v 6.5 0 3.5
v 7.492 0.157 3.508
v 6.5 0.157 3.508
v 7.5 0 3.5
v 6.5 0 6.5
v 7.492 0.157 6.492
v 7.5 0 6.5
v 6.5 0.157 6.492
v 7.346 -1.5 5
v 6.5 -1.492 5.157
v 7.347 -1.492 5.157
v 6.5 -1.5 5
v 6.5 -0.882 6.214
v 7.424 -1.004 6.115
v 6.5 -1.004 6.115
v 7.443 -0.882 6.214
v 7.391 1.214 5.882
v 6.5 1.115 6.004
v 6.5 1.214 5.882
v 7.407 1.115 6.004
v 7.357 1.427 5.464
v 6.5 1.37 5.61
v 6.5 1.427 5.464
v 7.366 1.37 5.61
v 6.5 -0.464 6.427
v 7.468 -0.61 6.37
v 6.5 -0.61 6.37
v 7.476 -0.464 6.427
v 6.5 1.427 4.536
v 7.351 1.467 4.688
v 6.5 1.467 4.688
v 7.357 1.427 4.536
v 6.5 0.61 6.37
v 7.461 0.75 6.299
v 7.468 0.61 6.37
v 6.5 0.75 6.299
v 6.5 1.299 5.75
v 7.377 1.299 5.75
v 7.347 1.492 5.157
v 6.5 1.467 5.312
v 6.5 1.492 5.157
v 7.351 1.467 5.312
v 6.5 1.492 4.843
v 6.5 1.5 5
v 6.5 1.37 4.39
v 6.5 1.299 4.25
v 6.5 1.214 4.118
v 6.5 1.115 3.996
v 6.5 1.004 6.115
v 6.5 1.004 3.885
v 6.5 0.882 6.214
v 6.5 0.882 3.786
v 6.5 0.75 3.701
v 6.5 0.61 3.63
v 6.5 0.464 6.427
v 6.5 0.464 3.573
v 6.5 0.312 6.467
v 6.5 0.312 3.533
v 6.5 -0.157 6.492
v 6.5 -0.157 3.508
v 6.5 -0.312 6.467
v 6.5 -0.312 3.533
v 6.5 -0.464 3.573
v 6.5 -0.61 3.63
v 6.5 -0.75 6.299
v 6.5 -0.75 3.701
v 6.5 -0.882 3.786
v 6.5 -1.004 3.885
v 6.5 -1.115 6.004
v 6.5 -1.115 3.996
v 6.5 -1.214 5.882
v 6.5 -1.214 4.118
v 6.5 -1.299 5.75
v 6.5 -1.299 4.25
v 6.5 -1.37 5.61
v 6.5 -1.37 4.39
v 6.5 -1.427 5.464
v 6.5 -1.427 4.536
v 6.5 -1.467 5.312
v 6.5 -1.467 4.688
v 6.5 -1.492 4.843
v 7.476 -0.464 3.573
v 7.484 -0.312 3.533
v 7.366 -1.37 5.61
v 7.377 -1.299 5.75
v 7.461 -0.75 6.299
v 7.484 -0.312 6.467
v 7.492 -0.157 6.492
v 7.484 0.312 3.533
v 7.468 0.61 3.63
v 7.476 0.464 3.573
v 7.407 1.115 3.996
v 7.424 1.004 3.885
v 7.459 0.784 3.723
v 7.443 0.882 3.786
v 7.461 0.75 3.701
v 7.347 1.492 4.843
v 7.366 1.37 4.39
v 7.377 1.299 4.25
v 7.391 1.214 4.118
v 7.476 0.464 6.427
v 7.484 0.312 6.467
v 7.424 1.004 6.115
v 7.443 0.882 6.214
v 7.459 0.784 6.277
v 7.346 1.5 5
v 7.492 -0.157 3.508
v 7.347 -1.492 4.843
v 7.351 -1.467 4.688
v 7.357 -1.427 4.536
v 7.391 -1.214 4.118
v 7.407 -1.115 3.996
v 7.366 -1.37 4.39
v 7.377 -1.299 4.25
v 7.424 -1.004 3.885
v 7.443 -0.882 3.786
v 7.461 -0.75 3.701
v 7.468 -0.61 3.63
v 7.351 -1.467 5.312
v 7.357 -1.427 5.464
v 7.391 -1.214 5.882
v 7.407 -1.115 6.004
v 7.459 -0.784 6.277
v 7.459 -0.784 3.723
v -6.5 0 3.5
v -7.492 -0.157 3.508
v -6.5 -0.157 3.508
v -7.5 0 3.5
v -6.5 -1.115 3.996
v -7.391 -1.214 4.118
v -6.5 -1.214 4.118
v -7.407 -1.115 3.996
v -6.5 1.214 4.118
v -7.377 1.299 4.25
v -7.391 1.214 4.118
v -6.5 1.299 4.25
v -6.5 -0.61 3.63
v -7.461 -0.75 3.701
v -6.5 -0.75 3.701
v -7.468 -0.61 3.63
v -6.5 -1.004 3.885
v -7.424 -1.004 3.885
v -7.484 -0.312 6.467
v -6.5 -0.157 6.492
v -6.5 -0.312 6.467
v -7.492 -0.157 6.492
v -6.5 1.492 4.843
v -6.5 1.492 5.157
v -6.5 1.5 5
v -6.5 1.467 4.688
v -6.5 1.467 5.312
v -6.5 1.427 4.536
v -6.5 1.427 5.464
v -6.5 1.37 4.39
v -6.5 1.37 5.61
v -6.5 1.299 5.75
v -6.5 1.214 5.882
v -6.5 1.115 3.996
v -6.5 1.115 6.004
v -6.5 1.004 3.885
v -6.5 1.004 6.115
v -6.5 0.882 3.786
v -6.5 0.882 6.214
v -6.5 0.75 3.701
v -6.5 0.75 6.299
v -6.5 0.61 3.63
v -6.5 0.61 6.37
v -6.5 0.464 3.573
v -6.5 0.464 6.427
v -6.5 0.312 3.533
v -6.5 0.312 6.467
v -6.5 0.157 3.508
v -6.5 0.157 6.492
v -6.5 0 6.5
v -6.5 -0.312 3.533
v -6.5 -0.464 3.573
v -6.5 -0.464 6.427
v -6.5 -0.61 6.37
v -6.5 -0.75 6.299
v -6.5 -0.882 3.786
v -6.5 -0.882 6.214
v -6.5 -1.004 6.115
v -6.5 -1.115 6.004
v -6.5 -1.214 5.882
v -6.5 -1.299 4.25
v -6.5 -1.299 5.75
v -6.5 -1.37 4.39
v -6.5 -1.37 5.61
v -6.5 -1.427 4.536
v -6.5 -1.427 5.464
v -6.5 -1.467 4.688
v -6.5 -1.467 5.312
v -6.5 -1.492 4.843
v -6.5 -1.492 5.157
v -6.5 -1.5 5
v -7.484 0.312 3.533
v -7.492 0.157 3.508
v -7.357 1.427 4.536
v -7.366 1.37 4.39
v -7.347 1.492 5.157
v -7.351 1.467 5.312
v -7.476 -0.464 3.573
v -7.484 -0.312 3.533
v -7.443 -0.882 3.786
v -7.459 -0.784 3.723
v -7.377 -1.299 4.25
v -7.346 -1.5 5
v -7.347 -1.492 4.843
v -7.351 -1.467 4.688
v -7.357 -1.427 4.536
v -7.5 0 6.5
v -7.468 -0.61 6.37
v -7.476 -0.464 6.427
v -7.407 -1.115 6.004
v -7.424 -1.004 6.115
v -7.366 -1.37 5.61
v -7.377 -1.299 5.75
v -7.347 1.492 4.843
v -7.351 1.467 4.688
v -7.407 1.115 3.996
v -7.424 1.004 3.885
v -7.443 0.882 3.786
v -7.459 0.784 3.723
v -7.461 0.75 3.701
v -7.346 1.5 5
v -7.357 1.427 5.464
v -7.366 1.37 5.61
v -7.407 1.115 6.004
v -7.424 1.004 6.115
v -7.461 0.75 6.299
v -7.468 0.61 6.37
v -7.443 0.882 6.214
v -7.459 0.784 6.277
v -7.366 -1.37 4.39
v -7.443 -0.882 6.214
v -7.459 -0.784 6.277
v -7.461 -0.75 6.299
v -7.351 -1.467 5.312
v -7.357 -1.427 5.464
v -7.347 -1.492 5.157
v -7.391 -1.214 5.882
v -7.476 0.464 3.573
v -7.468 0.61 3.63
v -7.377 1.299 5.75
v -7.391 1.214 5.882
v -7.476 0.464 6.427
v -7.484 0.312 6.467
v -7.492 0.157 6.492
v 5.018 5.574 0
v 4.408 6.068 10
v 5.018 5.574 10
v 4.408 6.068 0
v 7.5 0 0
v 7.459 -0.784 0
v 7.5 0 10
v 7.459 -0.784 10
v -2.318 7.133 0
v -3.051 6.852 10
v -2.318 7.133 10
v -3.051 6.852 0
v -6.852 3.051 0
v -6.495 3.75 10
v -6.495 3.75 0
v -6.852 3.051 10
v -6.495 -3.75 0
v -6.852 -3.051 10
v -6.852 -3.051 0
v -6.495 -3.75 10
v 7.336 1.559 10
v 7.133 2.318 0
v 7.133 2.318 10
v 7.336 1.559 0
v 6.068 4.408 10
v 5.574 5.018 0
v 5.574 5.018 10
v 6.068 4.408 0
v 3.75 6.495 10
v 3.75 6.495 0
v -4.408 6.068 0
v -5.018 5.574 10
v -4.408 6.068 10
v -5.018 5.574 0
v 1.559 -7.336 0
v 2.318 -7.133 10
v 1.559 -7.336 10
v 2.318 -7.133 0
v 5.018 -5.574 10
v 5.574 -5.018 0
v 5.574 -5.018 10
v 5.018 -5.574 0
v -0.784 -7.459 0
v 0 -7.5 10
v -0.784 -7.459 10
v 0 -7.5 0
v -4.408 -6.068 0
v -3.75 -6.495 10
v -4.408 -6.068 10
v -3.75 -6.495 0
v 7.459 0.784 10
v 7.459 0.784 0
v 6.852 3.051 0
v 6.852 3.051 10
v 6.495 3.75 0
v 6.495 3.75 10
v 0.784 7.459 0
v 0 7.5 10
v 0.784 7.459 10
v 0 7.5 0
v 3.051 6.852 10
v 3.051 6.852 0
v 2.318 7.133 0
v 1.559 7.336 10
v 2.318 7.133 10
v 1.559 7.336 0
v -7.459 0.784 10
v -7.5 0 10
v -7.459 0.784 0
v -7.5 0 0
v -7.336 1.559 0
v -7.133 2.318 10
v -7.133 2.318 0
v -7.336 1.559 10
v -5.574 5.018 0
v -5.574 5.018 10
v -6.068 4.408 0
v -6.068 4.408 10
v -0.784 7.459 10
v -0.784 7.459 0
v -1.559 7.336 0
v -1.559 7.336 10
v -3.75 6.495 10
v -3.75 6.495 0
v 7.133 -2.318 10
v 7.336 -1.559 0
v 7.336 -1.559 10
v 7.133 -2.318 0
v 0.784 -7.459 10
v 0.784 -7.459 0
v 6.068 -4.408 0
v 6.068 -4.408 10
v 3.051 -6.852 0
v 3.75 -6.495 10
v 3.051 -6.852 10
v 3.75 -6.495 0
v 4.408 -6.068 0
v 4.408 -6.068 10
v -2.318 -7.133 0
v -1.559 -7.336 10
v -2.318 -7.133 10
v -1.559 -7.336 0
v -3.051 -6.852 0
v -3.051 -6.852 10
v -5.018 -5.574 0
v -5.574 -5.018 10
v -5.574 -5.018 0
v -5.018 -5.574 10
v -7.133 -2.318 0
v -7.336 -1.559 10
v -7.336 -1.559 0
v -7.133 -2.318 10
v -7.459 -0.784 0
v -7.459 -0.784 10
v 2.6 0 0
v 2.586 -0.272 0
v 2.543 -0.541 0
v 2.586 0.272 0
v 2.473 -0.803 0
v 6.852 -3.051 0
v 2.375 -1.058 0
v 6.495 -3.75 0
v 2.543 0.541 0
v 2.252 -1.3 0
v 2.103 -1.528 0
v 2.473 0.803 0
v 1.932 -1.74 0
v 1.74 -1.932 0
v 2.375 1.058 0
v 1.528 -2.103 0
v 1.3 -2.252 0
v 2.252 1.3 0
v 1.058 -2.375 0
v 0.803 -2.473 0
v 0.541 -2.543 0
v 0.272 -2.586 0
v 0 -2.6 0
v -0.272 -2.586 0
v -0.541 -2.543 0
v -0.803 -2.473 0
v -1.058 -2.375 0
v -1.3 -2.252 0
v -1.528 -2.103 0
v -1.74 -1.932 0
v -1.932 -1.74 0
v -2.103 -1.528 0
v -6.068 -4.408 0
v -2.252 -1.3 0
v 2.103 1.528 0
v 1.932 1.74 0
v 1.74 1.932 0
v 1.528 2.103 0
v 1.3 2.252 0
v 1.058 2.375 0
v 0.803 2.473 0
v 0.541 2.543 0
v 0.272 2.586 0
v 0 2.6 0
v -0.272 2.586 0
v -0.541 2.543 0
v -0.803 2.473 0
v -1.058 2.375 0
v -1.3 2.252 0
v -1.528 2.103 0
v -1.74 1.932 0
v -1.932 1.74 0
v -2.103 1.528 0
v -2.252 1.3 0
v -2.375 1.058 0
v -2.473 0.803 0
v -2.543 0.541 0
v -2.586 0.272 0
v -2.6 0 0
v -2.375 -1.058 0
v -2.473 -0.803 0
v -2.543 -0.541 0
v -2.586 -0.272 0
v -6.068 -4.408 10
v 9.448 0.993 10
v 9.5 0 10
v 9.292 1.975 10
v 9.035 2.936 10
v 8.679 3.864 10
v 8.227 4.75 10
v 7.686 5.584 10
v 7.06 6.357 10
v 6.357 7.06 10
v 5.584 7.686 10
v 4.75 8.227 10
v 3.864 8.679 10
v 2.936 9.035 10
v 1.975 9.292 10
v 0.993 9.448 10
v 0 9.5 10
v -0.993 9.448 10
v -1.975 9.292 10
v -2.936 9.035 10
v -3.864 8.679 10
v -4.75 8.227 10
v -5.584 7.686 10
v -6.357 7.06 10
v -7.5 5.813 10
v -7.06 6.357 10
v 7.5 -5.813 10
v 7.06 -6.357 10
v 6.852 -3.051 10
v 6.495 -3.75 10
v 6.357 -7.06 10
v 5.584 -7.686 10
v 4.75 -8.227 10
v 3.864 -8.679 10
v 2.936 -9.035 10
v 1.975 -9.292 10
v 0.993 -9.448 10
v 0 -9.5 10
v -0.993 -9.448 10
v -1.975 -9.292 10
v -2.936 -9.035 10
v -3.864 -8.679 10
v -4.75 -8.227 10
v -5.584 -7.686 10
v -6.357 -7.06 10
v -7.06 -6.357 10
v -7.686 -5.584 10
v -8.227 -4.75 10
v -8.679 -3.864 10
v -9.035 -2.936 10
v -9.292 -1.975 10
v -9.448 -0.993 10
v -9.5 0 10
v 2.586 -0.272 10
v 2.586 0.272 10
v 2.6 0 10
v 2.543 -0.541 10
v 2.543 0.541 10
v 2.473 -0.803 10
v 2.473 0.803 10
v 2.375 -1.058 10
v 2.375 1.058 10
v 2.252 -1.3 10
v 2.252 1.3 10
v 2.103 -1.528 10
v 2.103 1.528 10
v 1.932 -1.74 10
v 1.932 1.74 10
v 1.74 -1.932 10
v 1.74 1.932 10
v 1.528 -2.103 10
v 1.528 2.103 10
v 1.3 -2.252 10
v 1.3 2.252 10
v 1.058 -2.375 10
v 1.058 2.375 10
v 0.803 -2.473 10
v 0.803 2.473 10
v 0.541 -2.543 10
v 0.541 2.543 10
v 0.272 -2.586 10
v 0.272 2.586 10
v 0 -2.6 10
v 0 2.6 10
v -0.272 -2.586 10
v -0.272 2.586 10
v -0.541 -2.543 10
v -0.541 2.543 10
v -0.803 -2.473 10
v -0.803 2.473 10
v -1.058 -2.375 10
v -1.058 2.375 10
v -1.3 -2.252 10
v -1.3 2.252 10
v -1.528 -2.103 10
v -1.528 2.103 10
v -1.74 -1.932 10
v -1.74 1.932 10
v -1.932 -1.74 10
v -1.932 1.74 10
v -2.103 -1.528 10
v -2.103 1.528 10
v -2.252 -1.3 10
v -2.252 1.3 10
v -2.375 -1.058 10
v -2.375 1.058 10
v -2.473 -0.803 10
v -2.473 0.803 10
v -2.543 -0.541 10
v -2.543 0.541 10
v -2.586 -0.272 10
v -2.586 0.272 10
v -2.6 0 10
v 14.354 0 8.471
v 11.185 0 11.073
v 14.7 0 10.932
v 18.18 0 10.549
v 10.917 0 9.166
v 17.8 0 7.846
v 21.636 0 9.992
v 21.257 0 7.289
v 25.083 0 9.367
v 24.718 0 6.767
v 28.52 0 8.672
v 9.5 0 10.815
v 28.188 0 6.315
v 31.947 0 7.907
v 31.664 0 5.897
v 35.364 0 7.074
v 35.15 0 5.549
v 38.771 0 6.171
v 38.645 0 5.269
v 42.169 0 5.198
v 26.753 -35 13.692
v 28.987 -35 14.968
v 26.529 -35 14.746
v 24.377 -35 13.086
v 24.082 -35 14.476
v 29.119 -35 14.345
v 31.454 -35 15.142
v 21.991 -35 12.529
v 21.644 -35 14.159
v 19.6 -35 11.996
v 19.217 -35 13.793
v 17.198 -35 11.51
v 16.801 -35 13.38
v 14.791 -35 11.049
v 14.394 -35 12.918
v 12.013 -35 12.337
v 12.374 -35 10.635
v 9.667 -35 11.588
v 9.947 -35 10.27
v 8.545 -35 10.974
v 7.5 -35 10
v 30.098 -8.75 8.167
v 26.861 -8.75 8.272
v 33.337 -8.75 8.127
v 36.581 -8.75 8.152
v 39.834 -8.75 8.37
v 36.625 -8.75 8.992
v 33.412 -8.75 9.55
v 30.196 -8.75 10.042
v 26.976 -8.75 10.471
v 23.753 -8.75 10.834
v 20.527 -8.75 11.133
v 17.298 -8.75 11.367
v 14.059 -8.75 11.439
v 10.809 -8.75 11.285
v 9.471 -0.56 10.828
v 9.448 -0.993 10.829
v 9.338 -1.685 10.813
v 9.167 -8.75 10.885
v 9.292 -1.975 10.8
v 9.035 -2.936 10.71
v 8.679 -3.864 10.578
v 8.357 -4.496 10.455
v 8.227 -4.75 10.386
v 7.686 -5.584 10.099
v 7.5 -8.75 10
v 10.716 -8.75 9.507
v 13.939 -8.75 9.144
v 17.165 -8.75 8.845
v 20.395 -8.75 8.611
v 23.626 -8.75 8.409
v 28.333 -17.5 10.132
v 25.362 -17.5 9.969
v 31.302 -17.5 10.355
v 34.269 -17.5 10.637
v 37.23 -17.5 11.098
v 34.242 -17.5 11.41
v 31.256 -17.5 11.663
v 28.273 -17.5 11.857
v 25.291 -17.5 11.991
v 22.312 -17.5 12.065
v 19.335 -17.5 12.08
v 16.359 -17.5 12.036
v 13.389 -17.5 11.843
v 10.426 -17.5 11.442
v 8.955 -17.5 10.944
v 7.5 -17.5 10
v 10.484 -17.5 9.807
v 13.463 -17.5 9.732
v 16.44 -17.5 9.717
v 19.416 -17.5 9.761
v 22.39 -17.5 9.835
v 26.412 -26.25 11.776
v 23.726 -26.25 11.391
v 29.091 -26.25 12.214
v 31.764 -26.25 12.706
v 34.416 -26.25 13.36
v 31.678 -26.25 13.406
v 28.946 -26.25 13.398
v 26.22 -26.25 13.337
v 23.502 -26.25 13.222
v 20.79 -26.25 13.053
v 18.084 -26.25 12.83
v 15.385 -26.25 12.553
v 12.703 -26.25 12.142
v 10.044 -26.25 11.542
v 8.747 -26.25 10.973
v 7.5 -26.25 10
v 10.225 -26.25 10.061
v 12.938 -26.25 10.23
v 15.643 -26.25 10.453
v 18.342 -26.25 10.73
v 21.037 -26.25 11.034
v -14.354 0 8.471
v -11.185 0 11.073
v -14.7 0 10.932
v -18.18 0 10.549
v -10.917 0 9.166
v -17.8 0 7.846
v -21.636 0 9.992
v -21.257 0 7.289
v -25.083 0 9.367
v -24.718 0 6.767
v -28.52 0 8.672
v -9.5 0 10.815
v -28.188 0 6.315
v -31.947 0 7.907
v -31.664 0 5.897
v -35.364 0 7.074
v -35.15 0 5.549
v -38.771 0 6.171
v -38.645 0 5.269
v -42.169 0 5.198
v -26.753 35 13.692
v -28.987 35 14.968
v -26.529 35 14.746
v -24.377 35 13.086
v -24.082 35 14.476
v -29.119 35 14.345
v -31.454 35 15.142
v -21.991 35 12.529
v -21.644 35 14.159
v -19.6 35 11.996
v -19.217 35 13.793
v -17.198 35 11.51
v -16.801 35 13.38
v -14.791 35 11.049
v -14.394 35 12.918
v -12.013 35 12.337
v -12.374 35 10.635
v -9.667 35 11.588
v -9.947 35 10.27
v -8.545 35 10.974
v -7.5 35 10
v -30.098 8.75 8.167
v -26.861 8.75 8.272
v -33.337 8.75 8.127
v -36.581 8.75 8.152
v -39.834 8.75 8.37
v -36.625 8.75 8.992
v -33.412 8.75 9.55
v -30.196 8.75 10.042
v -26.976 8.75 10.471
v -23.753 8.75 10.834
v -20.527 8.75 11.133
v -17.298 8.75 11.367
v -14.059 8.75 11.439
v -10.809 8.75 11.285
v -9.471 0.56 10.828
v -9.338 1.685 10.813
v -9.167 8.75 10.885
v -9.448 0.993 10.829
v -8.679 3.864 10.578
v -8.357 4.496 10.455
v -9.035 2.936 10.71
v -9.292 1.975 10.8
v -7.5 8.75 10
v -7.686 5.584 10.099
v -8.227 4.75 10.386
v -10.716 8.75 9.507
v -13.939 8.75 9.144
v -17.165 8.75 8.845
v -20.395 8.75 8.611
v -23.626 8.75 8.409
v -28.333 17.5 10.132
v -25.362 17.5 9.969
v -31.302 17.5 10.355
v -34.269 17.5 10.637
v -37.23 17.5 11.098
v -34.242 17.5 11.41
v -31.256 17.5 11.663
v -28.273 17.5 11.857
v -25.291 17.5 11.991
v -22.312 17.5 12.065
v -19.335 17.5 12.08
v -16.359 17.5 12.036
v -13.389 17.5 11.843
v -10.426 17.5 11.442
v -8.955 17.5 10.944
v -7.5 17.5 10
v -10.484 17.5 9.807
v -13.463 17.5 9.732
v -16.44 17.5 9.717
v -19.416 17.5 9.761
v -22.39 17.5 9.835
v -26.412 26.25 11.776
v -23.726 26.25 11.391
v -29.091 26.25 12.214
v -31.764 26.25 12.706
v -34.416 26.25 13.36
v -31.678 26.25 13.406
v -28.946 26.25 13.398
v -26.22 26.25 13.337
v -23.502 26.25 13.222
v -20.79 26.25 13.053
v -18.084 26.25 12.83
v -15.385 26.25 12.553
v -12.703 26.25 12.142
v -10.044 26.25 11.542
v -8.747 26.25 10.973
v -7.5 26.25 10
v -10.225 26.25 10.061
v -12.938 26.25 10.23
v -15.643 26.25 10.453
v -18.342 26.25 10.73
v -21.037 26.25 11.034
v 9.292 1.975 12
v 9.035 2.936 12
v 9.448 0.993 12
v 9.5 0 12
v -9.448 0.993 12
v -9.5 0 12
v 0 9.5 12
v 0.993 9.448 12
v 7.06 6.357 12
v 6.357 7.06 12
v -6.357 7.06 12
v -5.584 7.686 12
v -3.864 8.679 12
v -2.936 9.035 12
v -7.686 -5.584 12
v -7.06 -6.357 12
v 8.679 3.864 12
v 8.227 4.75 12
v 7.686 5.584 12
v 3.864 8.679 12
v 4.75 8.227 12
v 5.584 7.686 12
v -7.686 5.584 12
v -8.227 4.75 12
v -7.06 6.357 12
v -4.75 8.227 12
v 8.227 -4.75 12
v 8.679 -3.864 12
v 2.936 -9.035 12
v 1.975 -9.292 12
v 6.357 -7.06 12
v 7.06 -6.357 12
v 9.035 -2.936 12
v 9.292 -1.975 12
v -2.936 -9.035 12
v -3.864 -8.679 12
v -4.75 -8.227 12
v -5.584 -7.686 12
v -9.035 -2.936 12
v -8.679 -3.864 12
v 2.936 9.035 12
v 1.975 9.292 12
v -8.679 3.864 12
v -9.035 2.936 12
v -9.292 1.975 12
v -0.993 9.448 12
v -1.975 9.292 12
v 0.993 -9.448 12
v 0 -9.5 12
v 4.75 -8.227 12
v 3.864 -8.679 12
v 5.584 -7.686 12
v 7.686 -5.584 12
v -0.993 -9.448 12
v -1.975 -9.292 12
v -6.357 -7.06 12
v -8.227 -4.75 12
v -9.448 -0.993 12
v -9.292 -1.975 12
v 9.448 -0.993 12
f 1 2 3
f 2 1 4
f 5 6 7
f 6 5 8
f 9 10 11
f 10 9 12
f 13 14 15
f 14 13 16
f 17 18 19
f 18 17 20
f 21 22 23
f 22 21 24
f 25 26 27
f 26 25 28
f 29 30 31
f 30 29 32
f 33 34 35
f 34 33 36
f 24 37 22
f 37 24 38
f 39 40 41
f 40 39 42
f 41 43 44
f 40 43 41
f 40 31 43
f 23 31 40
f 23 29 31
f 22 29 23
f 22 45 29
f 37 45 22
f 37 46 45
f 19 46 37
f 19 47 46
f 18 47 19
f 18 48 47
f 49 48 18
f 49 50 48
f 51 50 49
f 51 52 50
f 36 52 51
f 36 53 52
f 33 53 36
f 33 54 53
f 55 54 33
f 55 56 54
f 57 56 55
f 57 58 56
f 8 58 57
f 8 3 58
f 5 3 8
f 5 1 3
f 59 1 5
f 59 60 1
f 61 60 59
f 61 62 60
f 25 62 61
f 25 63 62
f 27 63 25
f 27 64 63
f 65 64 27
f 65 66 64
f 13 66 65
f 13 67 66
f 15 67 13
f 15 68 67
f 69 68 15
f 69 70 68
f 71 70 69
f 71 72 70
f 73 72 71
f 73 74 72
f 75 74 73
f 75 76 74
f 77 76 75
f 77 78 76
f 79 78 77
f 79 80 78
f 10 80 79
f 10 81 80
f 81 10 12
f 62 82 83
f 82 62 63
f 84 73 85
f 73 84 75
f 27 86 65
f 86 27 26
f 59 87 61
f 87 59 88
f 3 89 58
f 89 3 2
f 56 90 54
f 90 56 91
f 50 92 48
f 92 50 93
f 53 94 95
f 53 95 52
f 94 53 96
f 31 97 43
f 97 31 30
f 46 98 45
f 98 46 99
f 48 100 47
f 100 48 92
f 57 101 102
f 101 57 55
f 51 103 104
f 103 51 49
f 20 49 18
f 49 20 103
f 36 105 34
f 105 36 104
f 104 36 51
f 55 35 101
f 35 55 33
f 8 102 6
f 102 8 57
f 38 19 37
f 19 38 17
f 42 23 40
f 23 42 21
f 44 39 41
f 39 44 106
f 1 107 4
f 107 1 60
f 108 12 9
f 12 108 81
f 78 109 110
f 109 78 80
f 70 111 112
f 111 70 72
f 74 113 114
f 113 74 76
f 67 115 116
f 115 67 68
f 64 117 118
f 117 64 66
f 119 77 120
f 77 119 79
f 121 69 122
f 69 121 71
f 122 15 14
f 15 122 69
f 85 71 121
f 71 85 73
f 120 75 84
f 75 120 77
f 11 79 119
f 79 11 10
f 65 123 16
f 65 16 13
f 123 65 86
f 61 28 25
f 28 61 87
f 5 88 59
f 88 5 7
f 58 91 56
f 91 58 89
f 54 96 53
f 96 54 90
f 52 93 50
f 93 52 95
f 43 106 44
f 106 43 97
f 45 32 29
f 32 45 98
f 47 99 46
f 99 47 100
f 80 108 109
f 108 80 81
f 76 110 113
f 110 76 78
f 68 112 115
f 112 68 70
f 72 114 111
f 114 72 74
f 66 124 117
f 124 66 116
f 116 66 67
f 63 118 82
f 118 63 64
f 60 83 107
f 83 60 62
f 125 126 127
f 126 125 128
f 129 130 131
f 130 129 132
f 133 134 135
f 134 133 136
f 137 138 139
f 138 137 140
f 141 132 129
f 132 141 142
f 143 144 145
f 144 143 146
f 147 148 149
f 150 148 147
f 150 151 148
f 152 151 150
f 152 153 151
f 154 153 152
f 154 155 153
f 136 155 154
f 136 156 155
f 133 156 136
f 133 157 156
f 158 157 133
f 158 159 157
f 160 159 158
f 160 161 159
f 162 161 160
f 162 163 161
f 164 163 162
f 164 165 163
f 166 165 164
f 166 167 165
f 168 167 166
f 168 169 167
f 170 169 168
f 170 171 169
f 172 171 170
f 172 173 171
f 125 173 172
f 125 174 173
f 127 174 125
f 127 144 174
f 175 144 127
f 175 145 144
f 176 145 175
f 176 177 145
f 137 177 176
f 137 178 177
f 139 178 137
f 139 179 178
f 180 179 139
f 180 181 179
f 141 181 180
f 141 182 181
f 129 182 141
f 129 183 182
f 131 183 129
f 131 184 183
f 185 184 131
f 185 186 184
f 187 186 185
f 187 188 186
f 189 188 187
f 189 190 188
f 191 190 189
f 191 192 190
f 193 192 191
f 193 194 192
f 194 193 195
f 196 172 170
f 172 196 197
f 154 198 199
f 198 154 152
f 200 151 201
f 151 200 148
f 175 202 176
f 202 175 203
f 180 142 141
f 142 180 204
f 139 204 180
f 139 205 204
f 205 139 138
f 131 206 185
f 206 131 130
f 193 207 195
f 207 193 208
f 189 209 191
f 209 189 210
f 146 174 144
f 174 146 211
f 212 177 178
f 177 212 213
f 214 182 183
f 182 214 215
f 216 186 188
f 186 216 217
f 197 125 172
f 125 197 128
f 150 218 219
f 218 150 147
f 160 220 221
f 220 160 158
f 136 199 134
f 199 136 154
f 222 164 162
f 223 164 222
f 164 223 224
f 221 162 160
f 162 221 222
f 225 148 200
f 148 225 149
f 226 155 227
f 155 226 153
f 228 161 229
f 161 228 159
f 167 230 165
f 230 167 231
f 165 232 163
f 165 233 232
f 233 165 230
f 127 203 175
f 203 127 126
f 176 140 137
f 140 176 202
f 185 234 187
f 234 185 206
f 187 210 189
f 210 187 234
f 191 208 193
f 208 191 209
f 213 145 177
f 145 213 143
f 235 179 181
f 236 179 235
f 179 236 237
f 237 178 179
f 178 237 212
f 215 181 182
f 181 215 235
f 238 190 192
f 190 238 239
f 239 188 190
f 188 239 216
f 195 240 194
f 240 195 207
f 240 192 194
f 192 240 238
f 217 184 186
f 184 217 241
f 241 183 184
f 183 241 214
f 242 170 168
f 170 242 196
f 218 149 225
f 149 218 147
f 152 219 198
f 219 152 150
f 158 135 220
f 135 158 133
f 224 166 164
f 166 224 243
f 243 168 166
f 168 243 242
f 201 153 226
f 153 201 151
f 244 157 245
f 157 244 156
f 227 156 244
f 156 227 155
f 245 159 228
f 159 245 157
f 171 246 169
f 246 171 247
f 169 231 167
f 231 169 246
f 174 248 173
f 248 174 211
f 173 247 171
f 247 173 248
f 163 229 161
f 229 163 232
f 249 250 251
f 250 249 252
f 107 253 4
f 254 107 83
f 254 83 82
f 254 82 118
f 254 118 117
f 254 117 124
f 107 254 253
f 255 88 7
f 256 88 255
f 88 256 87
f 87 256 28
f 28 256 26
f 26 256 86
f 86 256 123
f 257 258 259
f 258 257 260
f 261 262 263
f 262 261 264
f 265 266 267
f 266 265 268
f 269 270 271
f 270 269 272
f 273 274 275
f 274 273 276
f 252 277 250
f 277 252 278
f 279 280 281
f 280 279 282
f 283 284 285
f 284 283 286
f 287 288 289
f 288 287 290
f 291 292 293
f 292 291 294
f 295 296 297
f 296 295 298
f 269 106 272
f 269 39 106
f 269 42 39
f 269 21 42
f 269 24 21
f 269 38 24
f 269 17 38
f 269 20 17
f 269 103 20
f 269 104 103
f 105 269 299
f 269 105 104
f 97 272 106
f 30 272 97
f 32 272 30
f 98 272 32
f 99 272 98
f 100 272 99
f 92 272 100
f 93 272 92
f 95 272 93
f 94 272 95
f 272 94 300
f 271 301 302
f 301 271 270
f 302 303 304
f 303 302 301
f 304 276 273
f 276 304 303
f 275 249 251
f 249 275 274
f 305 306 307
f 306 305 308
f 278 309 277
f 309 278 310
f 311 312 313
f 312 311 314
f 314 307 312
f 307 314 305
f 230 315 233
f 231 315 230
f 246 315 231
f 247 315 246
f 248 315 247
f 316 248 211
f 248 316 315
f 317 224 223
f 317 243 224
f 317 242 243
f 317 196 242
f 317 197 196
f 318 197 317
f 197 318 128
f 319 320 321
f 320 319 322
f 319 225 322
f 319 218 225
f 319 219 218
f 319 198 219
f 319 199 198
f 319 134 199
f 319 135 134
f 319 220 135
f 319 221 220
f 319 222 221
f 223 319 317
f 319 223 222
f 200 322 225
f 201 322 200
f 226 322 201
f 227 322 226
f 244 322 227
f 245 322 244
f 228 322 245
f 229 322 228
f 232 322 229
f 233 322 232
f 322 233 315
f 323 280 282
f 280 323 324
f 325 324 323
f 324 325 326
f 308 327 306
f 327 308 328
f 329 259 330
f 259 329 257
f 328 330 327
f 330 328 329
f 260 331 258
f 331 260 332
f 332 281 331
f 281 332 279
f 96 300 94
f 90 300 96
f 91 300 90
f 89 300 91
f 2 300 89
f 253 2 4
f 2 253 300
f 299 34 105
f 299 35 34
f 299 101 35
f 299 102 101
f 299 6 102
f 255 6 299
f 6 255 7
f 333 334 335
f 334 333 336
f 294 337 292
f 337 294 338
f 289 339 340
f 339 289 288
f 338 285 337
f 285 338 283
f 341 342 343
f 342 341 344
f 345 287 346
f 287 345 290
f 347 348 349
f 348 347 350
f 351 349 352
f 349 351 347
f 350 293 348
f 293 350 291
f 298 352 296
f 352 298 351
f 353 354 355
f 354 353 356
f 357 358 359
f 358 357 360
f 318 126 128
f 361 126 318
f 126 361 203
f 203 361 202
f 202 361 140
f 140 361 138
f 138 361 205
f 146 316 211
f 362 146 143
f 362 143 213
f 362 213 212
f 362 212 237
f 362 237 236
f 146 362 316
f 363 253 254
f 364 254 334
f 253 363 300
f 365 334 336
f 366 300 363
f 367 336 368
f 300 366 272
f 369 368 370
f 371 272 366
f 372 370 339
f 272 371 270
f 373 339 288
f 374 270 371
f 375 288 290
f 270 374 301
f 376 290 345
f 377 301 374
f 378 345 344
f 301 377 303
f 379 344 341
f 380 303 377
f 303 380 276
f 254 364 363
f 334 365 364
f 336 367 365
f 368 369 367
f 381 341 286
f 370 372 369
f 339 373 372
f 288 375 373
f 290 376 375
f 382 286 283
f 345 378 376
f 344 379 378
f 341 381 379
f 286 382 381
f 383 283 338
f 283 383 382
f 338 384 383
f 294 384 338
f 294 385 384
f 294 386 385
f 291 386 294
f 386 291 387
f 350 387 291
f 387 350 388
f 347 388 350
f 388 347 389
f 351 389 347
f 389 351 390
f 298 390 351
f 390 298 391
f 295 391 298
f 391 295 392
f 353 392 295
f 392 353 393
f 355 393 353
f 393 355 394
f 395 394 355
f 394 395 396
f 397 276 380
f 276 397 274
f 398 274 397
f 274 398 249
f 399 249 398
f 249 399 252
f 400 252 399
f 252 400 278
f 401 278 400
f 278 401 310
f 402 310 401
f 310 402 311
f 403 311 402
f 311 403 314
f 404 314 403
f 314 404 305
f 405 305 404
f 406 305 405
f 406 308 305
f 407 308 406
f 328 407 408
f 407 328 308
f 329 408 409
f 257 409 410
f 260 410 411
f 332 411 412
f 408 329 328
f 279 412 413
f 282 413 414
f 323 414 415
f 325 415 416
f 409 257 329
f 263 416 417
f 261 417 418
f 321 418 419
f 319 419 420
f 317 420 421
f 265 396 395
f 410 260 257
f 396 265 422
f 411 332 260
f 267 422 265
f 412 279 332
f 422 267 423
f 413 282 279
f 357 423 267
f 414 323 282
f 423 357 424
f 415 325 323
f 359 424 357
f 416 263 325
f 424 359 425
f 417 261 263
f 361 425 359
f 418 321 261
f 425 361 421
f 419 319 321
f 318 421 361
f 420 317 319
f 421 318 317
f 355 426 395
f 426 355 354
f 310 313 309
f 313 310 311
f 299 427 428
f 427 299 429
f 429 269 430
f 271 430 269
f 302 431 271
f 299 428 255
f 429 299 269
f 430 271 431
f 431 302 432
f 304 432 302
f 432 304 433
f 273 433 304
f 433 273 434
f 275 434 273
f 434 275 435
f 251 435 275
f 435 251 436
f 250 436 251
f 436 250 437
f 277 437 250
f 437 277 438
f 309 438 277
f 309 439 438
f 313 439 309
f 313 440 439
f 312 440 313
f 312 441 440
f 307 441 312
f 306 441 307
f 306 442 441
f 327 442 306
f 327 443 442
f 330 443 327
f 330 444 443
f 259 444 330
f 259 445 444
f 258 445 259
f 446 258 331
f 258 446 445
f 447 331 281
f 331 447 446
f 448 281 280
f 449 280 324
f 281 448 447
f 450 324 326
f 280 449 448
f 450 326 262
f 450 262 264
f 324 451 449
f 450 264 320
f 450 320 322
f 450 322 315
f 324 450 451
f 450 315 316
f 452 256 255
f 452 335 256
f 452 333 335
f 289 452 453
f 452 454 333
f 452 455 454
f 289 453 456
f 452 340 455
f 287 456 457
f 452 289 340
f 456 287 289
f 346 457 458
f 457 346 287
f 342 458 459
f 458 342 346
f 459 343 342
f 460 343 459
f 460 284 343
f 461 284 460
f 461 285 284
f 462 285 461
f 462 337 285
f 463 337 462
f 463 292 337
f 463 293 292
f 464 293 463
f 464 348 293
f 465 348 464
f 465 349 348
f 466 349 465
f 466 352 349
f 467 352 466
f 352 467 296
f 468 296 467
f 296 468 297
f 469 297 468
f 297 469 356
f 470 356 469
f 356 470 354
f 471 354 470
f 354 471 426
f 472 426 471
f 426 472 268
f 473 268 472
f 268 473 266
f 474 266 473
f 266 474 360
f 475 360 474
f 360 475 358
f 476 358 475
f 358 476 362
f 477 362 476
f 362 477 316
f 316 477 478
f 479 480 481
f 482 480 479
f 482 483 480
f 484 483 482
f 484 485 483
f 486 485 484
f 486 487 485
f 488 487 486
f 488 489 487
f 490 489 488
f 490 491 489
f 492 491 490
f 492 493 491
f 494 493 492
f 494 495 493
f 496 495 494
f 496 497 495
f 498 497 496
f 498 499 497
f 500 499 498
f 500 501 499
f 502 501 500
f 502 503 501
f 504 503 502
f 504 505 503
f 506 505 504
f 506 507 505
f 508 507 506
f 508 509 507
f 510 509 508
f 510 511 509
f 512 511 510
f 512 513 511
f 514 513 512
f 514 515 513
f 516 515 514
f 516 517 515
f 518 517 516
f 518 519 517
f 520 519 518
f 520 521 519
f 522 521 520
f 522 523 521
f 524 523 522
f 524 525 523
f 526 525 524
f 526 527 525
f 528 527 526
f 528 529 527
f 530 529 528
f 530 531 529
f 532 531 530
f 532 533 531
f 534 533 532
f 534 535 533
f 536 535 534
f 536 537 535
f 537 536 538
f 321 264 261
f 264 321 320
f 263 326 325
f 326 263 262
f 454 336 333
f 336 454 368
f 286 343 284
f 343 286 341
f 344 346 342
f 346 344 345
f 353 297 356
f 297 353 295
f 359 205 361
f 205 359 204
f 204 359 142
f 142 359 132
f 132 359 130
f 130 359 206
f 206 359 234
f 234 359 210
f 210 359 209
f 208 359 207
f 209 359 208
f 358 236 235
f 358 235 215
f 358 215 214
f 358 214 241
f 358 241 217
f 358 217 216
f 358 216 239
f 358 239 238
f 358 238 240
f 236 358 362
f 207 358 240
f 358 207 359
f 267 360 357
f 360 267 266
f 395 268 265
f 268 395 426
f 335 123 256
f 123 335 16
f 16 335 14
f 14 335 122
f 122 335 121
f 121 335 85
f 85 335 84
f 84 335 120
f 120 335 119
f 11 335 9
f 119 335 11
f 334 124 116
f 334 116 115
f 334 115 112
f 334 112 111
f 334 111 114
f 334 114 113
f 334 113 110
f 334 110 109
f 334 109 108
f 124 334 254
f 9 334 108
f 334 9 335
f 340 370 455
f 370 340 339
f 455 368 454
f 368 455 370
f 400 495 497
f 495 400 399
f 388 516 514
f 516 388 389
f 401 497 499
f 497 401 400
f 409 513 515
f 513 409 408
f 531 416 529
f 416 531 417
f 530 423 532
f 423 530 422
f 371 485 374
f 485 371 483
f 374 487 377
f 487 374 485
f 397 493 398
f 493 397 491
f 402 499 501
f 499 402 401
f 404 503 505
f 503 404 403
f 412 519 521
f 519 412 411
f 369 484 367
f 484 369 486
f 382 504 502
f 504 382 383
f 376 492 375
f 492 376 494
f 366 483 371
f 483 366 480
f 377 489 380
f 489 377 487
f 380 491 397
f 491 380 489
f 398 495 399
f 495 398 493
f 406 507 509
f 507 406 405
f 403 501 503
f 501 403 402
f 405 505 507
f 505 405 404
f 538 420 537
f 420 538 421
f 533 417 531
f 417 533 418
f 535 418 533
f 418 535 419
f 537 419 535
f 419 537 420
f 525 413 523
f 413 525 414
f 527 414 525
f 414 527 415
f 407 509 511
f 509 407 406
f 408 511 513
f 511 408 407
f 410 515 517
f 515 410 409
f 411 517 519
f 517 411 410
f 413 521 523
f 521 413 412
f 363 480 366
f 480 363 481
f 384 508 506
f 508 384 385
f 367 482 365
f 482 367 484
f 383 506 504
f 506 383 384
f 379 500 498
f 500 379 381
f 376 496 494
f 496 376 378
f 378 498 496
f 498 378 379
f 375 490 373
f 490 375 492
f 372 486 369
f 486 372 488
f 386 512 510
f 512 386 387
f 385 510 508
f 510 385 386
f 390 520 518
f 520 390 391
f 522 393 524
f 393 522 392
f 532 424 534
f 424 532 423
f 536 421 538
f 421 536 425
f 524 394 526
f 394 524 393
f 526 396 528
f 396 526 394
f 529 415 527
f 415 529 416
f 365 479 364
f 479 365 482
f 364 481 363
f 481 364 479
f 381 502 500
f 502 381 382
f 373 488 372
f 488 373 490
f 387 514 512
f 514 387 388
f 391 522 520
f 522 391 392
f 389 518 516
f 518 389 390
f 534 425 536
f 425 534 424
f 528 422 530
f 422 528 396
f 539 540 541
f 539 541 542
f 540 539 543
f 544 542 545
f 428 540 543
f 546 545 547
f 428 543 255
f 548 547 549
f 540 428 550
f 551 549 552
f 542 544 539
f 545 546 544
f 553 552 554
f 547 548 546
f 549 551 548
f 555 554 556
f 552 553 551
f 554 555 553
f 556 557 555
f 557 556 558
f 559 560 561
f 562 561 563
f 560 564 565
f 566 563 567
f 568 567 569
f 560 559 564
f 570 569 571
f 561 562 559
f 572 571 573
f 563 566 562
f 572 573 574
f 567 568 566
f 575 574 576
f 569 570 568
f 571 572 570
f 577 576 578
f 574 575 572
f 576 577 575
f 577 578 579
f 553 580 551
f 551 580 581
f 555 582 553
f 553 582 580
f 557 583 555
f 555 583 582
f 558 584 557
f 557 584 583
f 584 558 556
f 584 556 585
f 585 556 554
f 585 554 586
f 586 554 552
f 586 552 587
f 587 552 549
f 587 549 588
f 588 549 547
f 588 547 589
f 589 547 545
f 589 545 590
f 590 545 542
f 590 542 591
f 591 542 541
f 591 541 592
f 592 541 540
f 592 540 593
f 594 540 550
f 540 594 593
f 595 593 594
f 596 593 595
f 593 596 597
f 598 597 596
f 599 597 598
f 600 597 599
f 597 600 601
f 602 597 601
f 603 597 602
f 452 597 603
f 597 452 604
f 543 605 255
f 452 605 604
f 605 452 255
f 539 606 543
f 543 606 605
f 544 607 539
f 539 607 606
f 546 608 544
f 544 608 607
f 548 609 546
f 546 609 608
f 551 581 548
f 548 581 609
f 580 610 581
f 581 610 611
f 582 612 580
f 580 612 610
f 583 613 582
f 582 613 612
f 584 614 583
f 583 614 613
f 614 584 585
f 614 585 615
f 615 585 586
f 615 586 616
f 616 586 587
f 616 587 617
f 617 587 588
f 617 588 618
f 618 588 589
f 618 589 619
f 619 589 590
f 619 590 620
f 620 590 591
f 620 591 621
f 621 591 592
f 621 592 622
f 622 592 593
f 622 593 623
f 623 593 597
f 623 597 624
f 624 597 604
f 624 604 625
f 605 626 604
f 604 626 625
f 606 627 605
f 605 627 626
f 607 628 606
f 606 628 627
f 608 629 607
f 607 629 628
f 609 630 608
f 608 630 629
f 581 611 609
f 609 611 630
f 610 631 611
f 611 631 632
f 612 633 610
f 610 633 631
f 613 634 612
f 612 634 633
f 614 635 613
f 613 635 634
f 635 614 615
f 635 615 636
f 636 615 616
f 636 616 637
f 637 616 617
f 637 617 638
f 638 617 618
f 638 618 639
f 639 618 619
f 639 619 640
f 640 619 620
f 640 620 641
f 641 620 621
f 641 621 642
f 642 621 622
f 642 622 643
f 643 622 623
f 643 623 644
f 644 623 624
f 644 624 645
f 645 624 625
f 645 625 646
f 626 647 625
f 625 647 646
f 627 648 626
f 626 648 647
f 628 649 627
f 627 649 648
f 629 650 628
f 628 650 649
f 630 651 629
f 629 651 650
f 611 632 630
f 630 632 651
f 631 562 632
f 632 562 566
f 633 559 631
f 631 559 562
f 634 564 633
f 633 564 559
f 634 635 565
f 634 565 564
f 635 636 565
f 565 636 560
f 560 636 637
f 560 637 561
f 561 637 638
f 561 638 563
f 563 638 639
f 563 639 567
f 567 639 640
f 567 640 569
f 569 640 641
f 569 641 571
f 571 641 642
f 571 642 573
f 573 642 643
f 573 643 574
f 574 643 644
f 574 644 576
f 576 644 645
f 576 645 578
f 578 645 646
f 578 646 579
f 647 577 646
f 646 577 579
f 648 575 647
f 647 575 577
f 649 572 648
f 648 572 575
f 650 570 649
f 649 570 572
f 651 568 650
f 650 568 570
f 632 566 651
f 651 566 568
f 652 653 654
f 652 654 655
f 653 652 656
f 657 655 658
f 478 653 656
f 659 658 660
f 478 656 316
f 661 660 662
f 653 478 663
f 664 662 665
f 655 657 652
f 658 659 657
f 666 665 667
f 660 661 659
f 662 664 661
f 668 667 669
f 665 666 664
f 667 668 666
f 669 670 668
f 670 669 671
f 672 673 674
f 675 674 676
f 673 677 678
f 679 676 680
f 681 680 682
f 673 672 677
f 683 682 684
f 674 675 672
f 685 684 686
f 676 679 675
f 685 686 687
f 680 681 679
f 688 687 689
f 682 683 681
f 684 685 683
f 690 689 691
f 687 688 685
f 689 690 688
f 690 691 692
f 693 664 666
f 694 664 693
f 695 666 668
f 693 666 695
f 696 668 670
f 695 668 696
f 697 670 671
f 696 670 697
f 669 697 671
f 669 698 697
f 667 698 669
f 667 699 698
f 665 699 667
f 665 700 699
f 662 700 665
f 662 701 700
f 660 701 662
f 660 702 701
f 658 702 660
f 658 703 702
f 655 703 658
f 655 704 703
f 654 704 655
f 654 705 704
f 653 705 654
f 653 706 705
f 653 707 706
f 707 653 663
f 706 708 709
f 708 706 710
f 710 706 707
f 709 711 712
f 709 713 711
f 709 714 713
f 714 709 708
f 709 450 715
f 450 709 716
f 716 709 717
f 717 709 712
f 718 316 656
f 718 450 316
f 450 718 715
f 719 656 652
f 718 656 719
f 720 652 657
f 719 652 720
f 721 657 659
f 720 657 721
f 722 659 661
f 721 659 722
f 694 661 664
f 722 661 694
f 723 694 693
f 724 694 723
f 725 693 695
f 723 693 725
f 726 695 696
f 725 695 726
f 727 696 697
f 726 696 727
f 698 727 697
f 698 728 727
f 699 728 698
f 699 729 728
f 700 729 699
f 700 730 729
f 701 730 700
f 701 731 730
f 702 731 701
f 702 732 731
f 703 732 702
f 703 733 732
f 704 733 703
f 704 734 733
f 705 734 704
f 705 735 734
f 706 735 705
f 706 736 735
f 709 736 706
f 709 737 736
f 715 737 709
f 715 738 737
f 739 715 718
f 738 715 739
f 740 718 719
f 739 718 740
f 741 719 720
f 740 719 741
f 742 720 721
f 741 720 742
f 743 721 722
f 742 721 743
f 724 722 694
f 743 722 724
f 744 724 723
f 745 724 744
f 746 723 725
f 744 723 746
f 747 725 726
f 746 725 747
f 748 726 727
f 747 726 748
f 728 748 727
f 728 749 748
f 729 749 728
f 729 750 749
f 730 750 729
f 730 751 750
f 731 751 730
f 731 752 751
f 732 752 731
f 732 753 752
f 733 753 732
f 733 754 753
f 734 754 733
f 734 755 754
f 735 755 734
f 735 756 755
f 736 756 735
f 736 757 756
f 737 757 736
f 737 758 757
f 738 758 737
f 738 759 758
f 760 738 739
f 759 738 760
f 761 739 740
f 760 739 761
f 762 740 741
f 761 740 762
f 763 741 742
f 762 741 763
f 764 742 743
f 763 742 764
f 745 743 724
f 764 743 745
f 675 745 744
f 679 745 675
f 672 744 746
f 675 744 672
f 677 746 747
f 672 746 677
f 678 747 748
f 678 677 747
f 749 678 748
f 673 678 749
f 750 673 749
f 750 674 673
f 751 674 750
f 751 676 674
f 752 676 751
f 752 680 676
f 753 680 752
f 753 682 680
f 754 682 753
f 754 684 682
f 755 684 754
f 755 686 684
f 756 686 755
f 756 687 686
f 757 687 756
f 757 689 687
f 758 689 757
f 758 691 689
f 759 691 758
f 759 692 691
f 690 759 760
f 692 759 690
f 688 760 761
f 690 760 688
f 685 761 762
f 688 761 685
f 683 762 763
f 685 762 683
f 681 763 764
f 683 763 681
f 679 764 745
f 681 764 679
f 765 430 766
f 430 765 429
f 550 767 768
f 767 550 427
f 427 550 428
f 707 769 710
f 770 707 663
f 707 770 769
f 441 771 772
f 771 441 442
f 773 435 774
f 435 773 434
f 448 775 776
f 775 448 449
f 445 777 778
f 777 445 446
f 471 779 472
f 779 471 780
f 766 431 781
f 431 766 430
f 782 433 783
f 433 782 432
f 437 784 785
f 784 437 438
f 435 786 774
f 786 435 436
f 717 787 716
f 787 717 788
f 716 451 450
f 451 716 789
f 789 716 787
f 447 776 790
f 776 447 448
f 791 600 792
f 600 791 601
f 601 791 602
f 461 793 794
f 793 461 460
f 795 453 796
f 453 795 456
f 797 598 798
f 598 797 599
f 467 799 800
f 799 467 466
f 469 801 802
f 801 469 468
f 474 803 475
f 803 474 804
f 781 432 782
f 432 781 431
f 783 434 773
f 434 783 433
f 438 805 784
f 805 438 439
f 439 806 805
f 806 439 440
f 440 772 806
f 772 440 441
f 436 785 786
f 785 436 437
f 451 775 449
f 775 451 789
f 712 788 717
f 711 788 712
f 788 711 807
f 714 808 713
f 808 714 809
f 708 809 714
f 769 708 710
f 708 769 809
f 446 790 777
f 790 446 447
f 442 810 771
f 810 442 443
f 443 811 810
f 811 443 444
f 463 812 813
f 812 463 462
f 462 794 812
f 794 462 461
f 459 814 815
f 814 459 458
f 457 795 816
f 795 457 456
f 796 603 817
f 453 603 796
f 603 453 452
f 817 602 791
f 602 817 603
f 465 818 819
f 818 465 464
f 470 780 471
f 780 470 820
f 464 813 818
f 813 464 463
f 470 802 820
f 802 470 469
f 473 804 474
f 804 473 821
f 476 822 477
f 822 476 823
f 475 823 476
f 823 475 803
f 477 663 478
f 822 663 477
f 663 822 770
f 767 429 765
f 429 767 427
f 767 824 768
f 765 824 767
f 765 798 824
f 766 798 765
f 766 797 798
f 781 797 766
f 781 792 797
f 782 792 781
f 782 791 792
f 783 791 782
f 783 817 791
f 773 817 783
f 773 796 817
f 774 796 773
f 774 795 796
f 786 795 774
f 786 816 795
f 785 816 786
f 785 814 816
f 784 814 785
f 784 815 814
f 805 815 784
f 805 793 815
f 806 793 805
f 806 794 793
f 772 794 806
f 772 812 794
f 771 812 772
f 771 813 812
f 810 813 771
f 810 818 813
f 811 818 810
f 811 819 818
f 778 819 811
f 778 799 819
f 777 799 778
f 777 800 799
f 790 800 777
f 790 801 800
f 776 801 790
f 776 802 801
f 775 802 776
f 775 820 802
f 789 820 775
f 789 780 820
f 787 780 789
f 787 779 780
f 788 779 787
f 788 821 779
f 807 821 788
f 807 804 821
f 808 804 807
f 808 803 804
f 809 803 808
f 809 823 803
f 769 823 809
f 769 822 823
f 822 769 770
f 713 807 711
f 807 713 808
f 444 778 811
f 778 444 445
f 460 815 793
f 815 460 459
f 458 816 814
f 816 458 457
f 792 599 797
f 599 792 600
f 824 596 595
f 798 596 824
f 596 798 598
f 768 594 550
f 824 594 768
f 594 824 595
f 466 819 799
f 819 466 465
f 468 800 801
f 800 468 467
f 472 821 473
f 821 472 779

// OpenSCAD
/*
 * COMPLETE MOTOR + IMPELLER ASSEMBLY
 * For CFD fluid testing and visualization
 * 
 * This model includes:
 *   - Brushless motor (2204-2206 size)
 *   - Motor shaft (5mm)
 *   - Impeller hub
 *   - 3 impeller variants (bladeless, AI-blades, hybrid)
 *   - Mounting plate
 * 
 * Usage:
 *   - Render full assembly: F6
 *   - Export for CFD: Set EXPORT_MODE = "impeller_only"
 *   - Change design: Set IMPELLER_TYPE = "bladeless" | "bladed" | "hybrid"
 */

// ============================================================================
// CONFIGURATION PARAMETERS (AI-Optimizable)
// ============================================================================

// General Settings
$fn = 60;  // Resolution for CFD export (increase to 100 for final)

// Export Mode
EXPORT_MODE = "impeller_only";  // Options: "full_assembly", "impeller_only", "motor_only"

// Impeller Type
IMPELLER_TYPE = "bladed";  // Options: "bladeless", "bladed", "hybrid"

// Motor Specifications (2204-2206 brushless)
MOTOR_DIAMETER = 28;         // mm
MOTOR_HEIGHT = 25;           // mm
MOTOR_SHAFT_DIAMETER = 5;    // mm (standard)
MOTOR_SHAFT_LENGTH = 15;     // mm (extends above motor)
MOTOR_MOUNT_PATTERN = 16;    // mm (16x16 or 19x19 common)
MOTOR_SCREW_DIAMETER = 3;    // M3 screws

// Impeller Parameters - BLADELESS
BLADELESS_OUTER_DIAMETER = 90;    // mm
BLADELESS_AIR_GAP = 0.8;          // mm (optimize: 0.6-1.2)
BLADELESS_THROAT_RATIO = 0.72;    // (optimize: 0.65-0.80)
BLADELESS_EXPANSION_ANGLE = 18;   // degrees (optimize: 12-25)
BLADELESS_RING_THICKNESS = 3;     // mm (optimize: 2-4)
BLADELESS_HEIGHT = 24;            // mm

// Impeller Parameters - BLADED
BLADED_DIAMETER = 85;
BLADED_HUB_DIAMETER = 15;         // mm (optimize: 12-20)
BLADED_BLADE_COUNT = 2;
BLADED_ROOT_CHORD = 35;
BLADED_TIP_CHORD_RATIO = 0.7;    // (optimize: 0.6-0.8)
BLADED_BLADE_THICKNESS = 2;       // mm (optimize: 1.5-3)
BLADED_BLADE_TWIST = -20;
BLADED_ATTACK_ANGLE = -8;
BLADED_BLADE_HEIGHT = 12;         // mm (optimize: 10-15)

// Hub Parameters
HUB_DIAMETER = 15;
HUB_HEIGHT = 10;
HUB_SET_SCREW_DIAMETER = 3;  // M3 set screw

// Mounting Plate
PLATE_SIZE = 50;
PLATE_THICKNESS = 3;

// ============================================================================
// MOTOR MODEL
// ============================================================================

module brushless_motor_2204() {
    color("DarkSlateGray") {
        // Motor can (bell)
        difference() {
            cylinder(h=MOTOR_HEIGHT, d=MOTOR_DIAMETER);
            
            // Hollow inside (weight reduction visualization)
            translate([0, 0, -0.5])
                cylinder(h=MOTOR_HEIGHT - 5, d=MOTOR_DIAMETER - 4);
            
            // Mounting holes
            for(i = [0:3]) {
                rotate([0, 0, i * 90])
                    translate([MOTOR_MOUNT_PATTERN/2, 0, MOTOR_HEIGHT/2])
                        rotate([90, 0, 0])
                            cylinder(h=MOTOR_DIAMETER, d=MOTOR_SCREW_DIAMETER, center=true);
            }
        }
        
        // Motor base
        translate([0, 0, -3])
            cylinder(h=3, d=MOTOR_DIAMETER - 2);
    }
    
    // Motor shaft
    color("Silver")
        translate([0, 0, MOTOR_HEIGHT])
            cylinder(h=MOTOR_SHAFT_LENGTH, d=MOTOR_SHAFT_DIAMETER);
    
    // Shaft tip (for hub attachment)
    color("Silver")
        translate([0, 0, MOTOR_HEIGHT + MOTOR_SHAFT_LENGTH])
            cylinder(h=2, d=MOTOR_SHAFT_DIAMETER - 0.5);
}

// ============================================================================
// IMPELLER HUB
// ============================================================================

module impeller_hub() {
    color("Gray")
    difference() {
        // Hub body
        cylinder(h=HUB_HEIGHT, d=HUB_DIAMETER);
        
        // Shaft hole (5mm + 0.2mm clearance)
        translate([0, 0, -0.5])
            cylinder(h=HUB_HEIGHT + 1, d=MOTOR_SHAFT_DIAMETER + 0.2);
        
        // Set screw holes (2x for balance)
        for(i = [0:1]) {
            rotate([0, 0, i * 180])
                translate([HUB_DIAMETER/2 - 1, 0, HUB_HEIGHT/2])
                    rotate([0, 90, 0])
                        cylinder(h=5, d=HUB_SET_SCREW_DIAMETER);
        }
    }
}

// ============================================================================
// BLADELESS IMPELLER (Dyson-style)
// ============================================================================

module bladeless_impeller() {
    outer_r = BLADELESS_OUTER_DIAMETER / 2;
    throat_r = outer_r * BLADELESS_THROAT_RATIO;
    gap = BLADELESS_AIR_GAP;
    
    color("SkyBlue", 0.7)
    difference() {
        // Outer ring
        rotate_extrude()
            translate([outer_r - BLADELESS_RING_THICKNESS/2, BLADELESS_HEIGHT/2, 0])
                circle(d=BLADELESS_RING_THICKNESS + BLADELESS_HEIGHT);
        
        // Inner air gap (critical for Coanda effect)
        rotate_extrude()
            translate([outer_r - gap - BLADELESS_RING_THICKNESS/2, BLADELESS_HEIGHT/2, 0])
                circle(d=BLADELESS_RING_THICKNESS + BLADELESS_HEIGHT - 2*gap);
    }
    
    // Base plate (connects to hub)
    color("SkyBlue", 0.7)
    translate([0, 0, -2])
        difference() {
            cylinder(h=2, d=outer_r * 2);
            translate([0, 0, -0.5])
                cylinder(h=3, d=HUB_DIAMETER + 1);
        }
    
    // Air inlet (bell-shaped for smooth flow)
    color("SkyBlue", 0.7)
    translate([0, 0, -2]) {
        difference() {
            cylinder(h=15, d1=throat_r * 2, d2=outer_r * 1.8);
            translate([0, 0, -0.5])
                cylinder(h=16, d1=throat_r * 2 - 3, d2=outer_r * 1.8 - 3);
        }
    }
}

// ============================================================================
// AI-OPTIMIZED BLADED IMPELLER (NACA 2412 profile)
// ============================================================================

module naca_2412_blade(chord, height, twist_angle, attack_angle) {
    // Simplified NACA 2412 airfoil profile
    // Using parametric approximation for 3D printing
    
    color("LightSteelBlue", 0.8)
    linear_extrude(height=height, twist=twist_angle, scale=BLADED_TIP_CHORD_RATIO) {
        rotate([0, 0, attack_angle])
        polygon([
            // Upper surface (cambered)
            [0, 0],
            [chord * 0.05, chord * 0.03],
            [chord * 0.1, chord * 0.045],
            [chord * 0.2, chord * 0.055],
            [chord * 0.3, chord * 0.058],
            [chord * 0.4, chord * 0.056],
            [chord * 0.5, chord * 0.052],
            [chord * 0.6, chord * 0.046],
            [chord * 0.7, chord * 0.038],
            [chord * 0.8, chord * 0.028],
            [chord * 0.9, chord * 0.016],
            [chord * 1.0, chord * 0.002],
            // Lower surface (less cambered)
            [chord * 0.9, -chord * 0.010],
            [chord * 0.8, -chord * 0.016],
            [chord * 0.7, -chord * 0.020],
            [chord * 0.6, -chord * 0.022],
            [chord * 0.5, -chord * 0.023],
            [chord * 0.4, -chord * 0.022],
            [chord * 0.3, -chord * 0.020],
            [chord * 0.2, -chord * 0.016],
            [chord * 0.1, -chord * 0.010],
            [chord * 0.05, -chord * 0.005],
        ]);
    }
}

module bladed_impeller() {
    // Blades
    for(i = [0 : BLADED_BLADE_COUNT - 1]) {
        rotate([0, 0, i * (360 / BLADED_BLADE_COUNT)])
            translate([BLADED_HUB_DIAMETER/2, 0, 0])
                rotate([90, 0, 0])
                    naca_2412_blade(
                        BLADED_ROOT_CHORD, 
                        (BLADED_DIAMETER - BLADED_HUB_DIAMETER) / 2,
                        BLADED_BLADE_TWIST,
                        BLADED_ATTACK_ANGLE
                    );
    }
    
    // Hub disk (connects blades)
    color("LightSteelBlue", 0.8)
    cylinder(h=2, d=BLADED_HUB_DIAMETER + 4);
}

// ============================================================================
// HYBRID IMPELLER (Blades inside bladeless ring)
// ============================================================================

module hybrid_impeller() {
    // Outer bladeless ring
    bladeless_impeller();
    
    // Inner bladed impeller (scaled down to fit)
    scale([0.85, 0.85, 1])
        bladed_impeller();
}

// ============================================================================
// MOUNTING PLATE
// ============================================================================

module mounting_plate() {
    color("DimGray")
    difference() {
        // Base plate
        translate([-PLATE_SIZE/2, -PLATE_SIZE/2, 0])
            cube([PLATE_SIZE, PLATE_SIZE, PLATE_THICKNESS]);
        
        // Center hole for motor shaft
        translate([0, 0, -0.5])
            cylinder(h=PLATE_THICKNESS + 1, d=MOTOR_DIAMETER + 2);
        
        // Motor mounting holes
        for(i = [0:3]) {
            rotate([0, 0, i * 90])
                translate([MOTOR_MOUNT_PATTERN/2, 0, -0.5])
                    cylinder(h=PLATE_THICKNESS + 1, d=MOTOR_SCREW_DIAMETER);
        }
    }
}

// ============================================================================
// COMPLETE ASSEMBLY
// ============================================================================

module complete_assembly() {
    // Mounting plate (bottom)
    translate([0, 0, -PLATE_THICKNESS])
        mounting_plate();
    
    // Motor
    translate([0, 0, 0])
        brushless_motor_2204();
    
    // Hub (on shaft)
    translate([0, 0, MOTOR_HEIGHT + MOTOR_SHAFT_LENGTH - 2])
        impeller_hub();
    
    // Impeller (on hub)
    translate([0, 0, MOTOR_HEIGHT + MOTOR_SHAFT_LENGTH + HUB_HEIGHT]) {
        if (IMPELLER_TYPE == "bladeless") {
            bladeless_impeller();
        } else if (IMPELLER_TYPE == "bladed") {
            bladed_impeller();
        } else if (IMPELLER_TYPE == "hybrid") {
            hybrid_impeller();
        }
    }
}

// ============================================================================
// RENDER BASED ON EXPORT MODE
// ============================================================================

if (EXPORT_MODE == "full_assembly") {
    complete_assembly();
} 
else if (EXPORT_MODE == "impeller_only") {
    // For CFD testing - impeller + hub only
    impeller_hub();
    translate([0, 0, HUB_HEIGHT]) {
        if (IMPELLER_TYPE == "bladeless") {
            bladeless_impeller();
        } else if (IMPELLER_TYPE == "bladed") {
            bladed_impeller();
        } else if (IMPELLER_TYPE == "hybrid") {
            hybrid_impeller();
        }
    }
}
else if (EXPORT_MODE == "motor_only") {
    brushless_motor_2204();
}

// ============================================================================
// ANNOTATIONS FOR VISUALIZATION
// ============================================================================

// Uncomment to show dimensions
/*
color("Red", 0.3)
translate([BLADED_DIAMETER/2 + 10, 0, 20])
    text(str("Ø", BLADED_DIAMETER, "mm"), size=5, halign="left");

color("Green", 0.3)
translate([0, BLADED_DIAMETER/2 + 10, 20])
    text(str(BLADED_BLADE_COUNT, " blades"), size=5, halign="center");
*/

// ============================================================================
// EXPORT NOTES
// ============================================================================

/*
 * TO EXPORT FOR CFD TESTING:
 * 
 * 1. Set EXPORT_MODE = "impeller_only"
 * 2. Set IMPELLER_TYPE = "bladeless" (or "bladed" or "hybrid")
 * 3. Press F6 to render
 * 4. File → Export → Export as STL
 * 5. Use filename: impeller_bladeless_fn60.stl
 * 
 * FOR OPTIMIZATION:
 * - Modify parameters at top (marked with "optimize:")
 * - Re-render and export
 * - Upload to SimScale for CFD
 * - Compare results
 * 
 * RECOMMENDED CFD SETTINGS:
 * - Solver: k-omega SST
 * - RPM: 5000, 7000, 9000
 * - Mesh: 3-5M cells
 * - Boundary: Rotating zone on impeller
 */
